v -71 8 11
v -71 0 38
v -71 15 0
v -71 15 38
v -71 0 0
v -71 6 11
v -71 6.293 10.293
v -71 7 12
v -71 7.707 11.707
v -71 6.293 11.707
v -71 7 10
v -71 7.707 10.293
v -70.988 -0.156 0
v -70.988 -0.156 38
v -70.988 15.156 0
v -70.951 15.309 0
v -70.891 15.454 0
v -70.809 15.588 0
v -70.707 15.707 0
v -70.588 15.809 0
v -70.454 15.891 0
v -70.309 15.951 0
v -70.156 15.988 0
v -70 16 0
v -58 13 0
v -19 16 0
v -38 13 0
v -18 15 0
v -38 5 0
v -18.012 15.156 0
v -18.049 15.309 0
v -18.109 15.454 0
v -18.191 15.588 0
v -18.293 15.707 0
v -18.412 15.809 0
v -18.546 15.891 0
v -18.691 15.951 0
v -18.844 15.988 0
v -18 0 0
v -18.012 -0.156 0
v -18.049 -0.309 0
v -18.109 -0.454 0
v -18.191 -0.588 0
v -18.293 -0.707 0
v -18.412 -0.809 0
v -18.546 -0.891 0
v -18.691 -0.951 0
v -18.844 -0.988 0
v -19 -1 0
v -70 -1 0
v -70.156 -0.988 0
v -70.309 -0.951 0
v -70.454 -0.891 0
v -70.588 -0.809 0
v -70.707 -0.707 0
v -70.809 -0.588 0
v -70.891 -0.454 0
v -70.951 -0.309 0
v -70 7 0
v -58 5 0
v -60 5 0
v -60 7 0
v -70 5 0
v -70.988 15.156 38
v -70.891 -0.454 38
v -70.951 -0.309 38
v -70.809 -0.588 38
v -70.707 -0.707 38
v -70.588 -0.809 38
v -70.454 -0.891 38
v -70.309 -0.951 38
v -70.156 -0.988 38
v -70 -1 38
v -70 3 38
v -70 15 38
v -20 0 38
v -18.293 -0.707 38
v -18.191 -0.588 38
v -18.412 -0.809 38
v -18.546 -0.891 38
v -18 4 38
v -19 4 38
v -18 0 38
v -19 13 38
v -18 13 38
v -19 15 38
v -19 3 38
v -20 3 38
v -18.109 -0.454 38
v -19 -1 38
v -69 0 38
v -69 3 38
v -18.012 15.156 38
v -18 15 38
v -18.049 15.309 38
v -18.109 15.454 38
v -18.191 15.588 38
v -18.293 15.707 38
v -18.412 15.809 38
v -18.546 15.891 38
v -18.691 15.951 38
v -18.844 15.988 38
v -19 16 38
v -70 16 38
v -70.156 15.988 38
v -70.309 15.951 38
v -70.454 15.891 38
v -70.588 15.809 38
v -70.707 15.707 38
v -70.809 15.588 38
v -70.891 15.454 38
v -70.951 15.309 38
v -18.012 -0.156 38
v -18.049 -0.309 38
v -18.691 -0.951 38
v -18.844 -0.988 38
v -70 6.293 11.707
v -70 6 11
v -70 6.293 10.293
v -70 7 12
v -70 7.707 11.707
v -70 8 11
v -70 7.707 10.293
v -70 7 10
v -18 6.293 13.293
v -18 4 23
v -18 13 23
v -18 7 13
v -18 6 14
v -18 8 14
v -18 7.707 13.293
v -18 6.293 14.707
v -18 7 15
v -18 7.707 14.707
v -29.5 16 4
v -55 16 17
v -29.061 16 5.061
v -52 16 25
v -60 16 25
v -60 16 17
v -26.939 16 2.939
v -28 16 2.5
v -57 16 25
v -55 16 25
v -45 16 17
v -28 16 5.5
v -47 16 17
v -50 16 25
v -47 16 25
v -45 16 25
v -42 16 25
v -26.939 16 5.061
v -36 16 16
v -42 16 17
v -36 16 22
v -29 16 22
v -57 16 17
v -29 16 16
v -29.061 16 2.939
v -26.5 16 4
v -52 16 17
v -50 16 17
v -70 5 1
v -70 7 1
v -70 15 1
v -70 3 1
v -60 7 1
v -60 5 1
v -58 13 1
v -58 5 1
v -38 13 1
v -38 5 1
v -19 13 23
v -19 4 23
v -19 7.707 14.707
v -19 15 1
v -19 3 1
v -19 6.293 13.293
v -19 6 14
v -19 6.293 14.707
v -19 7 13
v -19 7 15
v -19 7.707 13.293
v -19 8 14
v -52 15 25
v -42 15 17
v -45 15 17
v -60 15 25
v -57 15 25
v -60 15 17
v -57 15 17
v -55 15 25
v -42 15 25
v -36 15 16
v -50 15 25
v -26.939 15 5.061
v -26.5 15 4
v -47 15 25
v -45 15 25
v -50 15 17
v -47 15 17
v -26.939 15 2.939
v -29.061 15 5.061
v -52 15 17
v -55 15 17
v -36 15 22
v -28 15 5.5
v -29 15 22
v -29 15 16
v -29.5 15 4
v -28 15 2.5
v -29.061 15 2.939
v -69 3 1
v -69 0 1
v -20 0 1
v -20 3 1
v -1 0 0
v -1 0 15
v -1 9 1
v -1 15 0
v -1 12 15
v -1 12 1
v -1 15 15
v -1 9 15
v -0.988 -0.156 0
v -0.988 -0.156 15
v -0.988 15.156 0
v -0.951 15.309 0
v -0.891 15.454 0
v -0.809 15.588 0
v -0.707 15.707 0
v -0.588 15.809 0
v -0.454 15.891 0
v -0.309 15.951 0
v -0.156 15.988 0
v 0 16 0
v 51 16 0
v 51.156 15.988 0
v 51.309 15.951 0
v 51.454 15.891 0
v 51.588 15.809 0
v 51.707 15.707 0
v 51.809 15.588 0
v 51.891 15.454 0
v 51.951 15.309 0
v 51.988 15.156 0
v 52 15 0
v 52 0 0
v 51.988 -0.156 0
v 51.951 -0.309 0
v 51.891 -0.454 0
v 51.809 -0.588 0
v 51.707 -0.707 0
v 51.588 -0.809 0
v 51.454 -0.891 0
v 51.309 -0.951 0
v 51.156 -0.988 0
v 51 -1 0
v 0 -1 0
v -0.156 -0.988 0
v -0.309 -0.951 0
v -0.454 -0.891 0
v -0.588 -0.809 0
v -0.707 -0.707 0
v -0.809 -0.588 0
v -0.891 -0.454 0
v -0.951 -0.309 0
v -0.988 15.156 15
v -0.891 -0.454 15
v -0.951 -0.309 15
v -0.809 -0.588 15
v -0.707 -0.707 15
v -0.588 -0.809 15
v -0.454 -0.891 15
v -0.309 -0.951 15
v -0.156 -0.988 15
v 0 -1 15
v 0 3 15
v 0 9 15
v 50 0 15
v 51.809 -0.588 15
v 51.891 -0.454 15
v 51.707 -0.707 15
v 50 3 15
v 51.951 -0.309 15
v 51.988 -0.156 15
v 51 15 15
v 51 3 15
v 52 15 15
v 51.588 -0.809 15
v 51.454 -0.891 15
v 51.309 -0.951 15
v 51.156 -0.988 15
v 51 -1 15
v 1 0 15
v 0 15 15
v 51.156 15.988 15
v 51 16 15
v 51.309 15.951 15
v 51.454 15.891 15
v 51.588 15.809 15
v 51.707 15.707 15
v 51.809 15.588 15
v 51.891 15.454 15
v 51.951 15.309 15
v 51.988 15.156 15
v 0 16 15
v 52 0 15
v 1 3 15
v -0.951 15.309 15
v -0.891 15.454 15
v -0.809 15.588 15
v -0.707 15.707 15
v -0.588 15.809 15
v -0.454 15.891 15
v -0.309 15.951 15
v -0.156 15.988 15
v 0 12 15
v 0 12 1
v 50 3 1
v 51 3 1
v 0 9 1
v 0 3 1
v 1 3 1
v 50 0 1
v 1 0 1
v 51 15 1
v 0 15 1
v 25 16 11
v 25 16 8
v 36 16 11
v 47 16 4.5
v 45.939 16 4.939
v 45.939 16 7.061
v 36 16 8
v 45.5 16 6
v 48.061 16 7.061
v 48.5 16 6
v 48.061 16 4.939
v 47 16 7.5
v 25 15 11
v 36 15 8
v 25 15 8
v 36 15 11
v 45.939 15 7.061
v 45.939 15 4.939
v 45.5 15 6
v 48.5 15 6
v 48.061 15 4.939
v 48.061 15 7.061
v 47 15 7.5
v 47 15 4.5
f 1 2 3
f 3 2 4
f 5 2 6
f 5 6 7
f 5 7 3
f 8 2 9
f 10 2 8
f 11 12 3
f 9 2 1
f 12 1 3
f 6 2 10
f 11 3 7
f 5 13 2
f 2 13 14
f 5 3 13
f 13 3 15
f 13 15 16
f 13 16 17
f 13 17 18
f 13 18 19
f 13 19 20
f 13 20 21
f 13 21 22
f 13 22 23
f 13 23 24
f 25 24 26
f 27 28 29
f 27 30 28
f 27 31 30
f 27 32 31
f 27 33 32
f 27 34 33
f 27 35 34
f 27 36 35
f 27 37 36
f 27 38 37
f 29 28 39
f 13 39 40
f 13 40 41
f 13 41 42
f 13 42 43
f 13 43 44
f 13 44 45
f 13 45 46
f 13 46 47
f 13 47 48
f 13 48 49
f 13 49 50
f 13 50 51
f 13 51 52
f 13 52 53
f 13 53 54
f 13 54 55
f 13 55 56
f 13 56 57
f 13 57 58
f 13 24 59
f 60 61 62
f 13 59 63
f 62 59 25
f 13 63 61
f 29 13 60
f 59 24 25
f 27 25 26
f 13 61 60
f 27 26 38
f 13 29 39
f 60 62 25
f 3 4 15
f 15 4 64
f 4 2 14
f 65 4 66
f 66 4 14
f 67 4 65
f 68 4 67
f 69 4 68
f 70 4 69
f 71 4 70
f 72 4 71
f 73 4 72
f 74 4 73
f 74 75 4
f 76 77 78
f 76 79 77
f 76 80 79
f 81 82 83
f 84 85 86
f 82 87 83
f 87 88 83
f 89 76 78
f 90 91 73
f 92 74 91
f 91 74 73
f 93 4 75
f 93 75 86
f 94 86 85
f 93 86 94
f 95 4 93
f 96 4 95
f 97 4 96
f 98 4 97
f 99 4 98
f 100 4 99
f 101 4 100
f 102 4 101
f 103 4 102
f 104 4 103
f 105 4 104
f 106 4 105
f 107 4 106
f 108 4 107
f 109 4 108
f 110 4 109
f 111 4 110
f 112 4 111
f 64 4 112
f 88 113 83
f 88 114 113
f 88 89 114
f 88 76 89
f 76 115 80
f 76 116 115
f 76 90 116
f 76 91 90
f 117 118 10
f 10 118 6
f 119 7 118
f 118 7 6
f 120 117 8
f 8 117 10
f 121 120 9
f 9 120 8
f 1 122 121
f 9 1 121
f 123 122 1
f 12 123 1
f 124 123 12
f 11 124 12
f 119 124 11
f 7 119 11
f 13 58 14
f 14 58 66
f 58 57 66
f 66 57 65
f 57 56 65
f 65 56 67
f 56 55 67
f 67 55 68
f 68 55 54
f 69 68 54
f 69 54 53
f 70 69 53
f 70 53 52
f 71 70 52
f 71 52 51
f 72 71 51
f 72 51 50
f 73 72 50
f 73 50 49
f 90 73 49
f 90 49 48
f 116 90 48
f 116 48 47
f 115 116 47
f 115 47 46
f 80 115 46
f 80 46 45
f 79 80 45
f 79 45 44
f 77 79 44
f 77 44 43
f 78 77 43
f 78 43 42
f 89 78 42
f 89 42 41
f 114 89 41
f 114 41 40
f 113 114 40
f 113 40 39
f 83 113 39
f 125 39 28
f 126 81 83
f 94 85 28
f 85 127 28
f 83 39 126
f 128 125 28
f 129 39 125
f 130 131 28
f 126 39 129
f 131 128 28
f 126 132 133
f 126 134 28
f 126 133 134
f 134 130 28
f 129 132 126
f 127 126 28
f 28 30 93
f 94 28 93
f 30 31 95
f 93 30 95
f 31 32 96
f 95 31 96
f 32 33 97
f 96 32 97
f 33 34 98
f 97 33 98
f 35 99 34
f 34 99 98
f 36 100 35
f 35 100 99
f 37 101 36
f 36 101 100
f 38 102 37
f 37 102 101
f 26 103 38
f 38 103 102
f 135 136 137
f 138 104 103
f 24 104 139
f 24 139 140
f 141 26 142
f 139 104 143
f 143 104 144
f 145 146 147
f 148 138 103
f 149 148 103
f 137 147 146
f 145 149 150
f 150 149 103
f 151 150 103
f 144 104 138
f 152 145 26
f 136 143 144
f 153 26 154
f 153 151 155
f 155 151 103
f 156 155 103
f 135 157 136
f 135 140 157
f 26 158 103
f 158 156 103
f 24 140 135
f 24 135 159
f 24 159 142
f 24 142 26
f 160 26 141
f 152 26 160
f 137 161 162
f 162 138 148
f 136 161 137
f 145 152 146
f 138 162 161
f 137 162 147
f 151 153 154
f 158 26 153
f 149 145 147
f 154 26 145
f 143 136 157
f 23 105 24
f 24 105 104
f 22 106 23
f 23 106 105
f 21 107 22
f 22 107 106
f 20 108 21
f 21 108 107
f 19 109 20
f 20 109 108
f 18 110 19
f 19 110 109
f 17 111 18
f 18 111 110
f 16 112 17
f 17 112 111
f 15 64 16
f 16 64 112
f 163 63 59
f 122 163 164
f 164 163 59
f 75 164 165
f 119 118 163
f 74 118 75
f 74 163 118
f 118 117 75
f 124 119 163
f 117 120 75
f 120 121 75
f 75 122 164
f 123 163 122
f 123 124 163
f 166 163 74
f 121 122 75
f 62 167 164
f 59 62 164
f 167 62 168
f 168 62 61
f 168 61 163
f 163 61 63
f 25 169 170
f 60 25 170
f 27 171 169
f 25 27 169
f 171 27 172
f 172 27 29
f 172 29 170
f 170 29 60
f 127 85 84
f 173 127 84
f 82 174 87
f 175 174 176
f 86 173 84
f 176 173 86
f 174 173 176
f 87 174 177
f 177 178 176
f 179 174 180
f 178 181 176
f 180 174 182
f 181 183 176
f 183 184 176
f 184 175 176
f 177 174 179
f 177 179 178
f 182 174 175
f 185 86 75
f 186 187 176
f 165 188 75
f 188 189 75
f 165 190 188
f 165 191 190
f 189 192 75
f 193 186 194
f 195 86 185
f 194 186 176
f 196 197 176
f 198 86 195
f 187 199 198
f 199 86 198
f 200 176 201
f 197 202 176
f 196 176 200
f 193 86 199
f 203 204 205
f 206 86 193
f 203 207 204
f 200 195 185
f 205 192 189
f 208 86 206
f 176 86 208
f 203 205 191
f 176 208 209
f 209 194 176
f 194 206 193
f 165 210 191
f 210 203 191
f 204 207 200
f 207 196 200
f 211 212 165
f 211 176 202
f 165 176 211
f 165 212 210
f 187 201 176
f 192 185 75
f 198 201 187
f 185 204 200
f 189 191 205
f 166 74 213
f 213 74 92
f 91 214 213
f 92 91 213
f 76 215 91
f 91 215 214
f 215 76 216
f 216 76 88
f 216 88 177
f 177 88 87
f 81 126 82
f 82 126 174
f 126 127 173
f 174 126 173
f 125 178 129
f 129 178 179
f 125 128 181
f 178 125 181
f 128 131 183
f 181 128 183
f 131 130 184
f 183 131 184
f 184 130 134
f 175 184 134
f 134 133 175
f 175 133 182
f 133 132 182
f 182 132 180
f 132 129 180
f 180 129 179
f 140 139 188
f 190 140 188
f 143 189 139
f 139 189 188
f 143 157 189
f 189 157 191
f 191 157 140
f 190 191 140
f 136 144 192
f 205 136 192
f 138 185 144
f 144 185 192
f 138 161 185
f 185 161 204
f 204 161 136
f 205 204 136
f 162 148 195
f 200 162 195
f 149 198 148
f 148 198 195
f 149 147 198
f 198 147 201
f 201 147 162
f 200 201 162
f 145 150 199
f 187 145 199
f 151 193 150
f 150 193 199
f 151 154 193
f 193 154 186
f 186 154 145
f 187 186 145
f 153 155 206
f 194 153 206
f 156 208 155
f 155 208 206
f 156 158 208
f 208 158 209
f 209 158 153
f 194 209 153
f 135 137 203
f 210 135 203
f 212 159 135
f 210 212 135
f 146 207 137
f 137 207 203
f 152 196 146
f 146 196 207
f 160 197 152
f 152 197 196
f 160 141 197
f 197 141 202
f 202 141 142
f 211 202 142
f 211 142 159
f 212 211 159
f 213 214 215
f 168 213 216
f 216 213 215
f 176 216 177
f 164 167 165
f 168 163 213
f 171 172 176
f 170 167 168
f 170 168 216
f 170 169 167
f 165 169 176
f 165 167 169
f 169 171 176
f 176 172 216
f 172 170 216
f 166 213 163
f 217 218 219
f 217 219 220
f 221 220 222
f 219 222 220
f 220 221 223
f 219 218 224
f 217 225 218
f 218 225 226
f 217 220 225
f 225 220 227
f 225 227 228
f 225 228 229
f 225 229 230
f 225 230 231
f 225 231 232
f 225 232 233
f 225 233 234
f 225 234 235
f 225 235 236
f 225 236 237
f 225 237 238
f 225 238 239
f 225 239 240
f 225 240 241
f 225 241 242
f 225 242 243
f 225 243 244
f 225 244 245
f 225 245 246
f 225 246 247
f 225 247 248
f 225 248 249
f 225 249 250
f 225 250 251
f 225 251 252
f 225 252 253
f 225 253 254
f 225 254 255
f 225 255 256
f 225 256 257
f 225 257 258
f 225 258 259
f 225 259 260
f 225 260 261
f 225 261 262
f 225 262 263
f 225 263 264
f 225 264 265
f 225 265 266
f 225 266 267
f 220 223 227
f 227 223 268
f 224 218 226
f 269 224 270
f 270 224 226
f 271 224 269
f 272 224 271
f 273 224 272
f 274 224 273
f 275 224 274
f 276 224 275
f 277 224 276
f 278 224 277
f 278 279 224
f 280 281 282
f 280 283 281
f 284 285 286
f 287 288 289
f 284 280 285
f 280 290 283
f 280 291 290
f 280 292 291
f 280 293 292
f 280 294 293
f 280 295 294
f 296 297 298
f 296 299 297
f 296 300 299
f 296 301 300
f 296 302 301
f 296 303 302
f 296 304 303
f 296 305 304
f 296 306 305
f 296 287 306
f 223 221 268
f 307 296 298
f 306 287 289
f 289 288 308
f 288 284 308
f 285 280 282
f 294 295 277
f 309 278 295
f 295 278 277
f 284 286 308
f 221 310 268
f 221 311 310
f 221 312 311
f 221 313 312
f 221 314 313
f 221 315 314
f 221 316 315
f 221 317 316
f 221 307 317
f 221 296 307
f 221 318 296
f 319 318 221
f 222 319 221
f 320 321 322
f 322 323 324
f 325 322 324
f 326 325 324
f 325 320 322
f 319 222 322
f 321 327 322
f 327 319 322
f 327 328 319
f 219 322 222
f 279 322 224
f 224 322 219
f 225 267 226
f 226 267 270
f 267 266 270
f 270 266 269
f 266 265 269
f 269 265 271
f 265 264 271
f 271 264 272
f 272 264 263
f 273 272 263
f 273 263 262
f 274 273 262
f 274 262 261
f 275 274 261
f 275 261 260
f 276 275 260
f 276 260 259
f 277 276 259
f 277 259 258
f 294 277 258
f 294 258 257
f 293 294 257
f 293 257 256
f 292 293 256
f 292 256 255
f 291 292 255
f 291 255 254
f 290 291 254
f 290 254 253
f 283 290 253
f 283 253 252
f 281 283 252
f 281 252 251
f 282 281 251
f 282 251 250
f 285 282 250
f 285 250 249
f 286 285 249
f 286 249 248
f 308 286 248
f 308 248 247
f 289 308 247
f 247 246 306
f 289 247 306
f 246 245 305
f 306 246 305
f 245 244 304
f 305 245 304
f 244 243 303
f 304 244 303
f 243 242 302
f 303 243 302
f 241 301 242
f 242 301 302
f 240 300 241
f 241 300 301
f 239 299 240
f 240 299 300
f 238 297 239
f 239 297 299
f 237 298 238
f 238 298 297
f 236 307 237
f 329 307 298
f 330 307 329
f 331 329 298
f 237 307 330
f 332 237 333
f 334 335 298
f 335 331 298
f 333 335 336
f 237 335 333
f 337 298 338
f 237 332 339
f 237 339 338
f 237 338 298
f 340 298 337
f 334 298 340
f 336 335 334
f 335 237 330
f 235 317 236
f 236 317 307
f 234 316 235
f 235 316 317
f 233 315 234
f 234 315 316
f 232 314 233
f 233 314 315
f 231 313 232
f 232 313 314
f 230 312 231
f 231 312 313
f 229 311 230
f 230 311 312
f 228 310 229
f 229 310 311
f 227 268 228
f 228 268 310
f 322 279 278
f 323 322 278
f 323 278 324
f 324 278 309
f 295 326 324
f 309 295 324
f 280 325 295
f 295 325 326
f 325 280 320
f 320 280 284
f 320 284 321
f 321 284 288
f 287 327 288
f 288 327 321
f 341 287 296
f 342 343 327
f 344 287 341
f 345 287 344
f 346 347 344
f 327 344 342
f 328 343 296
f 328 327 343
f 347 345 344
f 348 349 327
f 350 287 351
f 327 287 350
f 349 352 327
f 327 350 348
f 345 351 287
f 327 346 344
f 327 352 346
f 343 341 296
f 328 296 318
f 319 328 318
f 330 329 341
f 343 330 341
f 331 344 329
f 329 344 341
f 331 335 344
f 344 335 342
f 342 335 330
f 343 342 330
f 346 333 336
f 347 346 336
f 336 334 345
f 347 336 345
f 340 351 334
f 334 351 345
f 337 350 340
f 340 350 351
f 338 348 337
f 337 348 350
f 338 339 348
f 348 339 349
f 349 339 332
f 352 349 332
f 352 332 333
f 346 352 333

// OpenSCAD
translate([-70,0,0])
//caja seccion micro
difference()
{
//receptáculo
difference()
{
//forma externa
minkowski(){
cube([51,15,37]);
cylinder(r=1,h=1,$fn=40);
}
//cubo interno
translate([0,0,-2])
difference()
{
translate([0,0,3])
color([1,0,0])
cube([51,15,51]);
union()
{
translate([-1,0,2])
color([0,1,0])
cube([2,3,53]);
translate([50,0,2])
color([0,0,1])
cube([2,3,53]);
}
}
}
//fin receptáculo
//huecos
union()
{
//hueco led verde
translate([50,7,14])
rotate([0,90,0])
color([0,1,0])
cylinder(r=1,h=4,$fn=8);
//hueco led rojo
translate([-2,7,11])
color([1,0,0])
rotate([0,90,0])
cylinder(r=1,h=4,$fn=8);
//hueco conector de 3
translate([50,4,23])
color([0,0,1])
cube([4,9,16]);
//hueco boton test
translate([42,17,4])
rotate([90,0,0])
color([0,1,0])
cylinder(r=1.5,h=4,$fn=8);
//hueco interruptor
translate([0,5,-2])
color([1,0,0])
cube([10,2,4]);
//hueco conector de 5
translate([12,5,-2])
color([1,0,0])
cube([20,8,4]);
//hueco servo1
translate([25,13,17])
color([0,0,1])
cube([3,4,8]);
//hueco servo2
translate([20,13,17])
color([0,0,1])
cube([3,4,8]);
//hueco servo3
translate([15,13,17])
color([0,0,1])
cube([3,4,8]);
//hueco servo4
translate([10,13,17])
color([0,0,1])
cube([3,4,8]);
//hueco power conector
translate([34,13,16])
color([0,0,1])
cube([7,4,6]);
}
//fin huecos
}


//caja seccion ftdi
difference()
{
//receptáculo
difference()
{
//forma externa
minkowski(){
cube([51,15,14]);
cylinder(r=1,h=1,$fn=40);
}
//cubo interno
translate([0,0,-2])
difference()
{
translate([0,0,3])
color([1,0,0])
cube([51,15,51]);
union()
{
translate([-1,0,2])
color([0,1,0])
cube([2,3,53]);
translate([50,0,2])
color([0,0,1])
cube([2,3,53]);
}
}
}
//fin receptáculo

//huecos
union()
{
//hueco boton reset
translate([47,17,6])
rotate([90,0,0])
color([0,1,0])
cylinder(r=1.5,h=4,$fn=8);
//hueco ftdi
translate([25,13,8])
color([0,0,1])
cube([11,4,3]);
//hueco conector de 4
translate([-2,9,1])
color([0,0,1])
cube([4,3,16]);
}
//fin huecos
}
